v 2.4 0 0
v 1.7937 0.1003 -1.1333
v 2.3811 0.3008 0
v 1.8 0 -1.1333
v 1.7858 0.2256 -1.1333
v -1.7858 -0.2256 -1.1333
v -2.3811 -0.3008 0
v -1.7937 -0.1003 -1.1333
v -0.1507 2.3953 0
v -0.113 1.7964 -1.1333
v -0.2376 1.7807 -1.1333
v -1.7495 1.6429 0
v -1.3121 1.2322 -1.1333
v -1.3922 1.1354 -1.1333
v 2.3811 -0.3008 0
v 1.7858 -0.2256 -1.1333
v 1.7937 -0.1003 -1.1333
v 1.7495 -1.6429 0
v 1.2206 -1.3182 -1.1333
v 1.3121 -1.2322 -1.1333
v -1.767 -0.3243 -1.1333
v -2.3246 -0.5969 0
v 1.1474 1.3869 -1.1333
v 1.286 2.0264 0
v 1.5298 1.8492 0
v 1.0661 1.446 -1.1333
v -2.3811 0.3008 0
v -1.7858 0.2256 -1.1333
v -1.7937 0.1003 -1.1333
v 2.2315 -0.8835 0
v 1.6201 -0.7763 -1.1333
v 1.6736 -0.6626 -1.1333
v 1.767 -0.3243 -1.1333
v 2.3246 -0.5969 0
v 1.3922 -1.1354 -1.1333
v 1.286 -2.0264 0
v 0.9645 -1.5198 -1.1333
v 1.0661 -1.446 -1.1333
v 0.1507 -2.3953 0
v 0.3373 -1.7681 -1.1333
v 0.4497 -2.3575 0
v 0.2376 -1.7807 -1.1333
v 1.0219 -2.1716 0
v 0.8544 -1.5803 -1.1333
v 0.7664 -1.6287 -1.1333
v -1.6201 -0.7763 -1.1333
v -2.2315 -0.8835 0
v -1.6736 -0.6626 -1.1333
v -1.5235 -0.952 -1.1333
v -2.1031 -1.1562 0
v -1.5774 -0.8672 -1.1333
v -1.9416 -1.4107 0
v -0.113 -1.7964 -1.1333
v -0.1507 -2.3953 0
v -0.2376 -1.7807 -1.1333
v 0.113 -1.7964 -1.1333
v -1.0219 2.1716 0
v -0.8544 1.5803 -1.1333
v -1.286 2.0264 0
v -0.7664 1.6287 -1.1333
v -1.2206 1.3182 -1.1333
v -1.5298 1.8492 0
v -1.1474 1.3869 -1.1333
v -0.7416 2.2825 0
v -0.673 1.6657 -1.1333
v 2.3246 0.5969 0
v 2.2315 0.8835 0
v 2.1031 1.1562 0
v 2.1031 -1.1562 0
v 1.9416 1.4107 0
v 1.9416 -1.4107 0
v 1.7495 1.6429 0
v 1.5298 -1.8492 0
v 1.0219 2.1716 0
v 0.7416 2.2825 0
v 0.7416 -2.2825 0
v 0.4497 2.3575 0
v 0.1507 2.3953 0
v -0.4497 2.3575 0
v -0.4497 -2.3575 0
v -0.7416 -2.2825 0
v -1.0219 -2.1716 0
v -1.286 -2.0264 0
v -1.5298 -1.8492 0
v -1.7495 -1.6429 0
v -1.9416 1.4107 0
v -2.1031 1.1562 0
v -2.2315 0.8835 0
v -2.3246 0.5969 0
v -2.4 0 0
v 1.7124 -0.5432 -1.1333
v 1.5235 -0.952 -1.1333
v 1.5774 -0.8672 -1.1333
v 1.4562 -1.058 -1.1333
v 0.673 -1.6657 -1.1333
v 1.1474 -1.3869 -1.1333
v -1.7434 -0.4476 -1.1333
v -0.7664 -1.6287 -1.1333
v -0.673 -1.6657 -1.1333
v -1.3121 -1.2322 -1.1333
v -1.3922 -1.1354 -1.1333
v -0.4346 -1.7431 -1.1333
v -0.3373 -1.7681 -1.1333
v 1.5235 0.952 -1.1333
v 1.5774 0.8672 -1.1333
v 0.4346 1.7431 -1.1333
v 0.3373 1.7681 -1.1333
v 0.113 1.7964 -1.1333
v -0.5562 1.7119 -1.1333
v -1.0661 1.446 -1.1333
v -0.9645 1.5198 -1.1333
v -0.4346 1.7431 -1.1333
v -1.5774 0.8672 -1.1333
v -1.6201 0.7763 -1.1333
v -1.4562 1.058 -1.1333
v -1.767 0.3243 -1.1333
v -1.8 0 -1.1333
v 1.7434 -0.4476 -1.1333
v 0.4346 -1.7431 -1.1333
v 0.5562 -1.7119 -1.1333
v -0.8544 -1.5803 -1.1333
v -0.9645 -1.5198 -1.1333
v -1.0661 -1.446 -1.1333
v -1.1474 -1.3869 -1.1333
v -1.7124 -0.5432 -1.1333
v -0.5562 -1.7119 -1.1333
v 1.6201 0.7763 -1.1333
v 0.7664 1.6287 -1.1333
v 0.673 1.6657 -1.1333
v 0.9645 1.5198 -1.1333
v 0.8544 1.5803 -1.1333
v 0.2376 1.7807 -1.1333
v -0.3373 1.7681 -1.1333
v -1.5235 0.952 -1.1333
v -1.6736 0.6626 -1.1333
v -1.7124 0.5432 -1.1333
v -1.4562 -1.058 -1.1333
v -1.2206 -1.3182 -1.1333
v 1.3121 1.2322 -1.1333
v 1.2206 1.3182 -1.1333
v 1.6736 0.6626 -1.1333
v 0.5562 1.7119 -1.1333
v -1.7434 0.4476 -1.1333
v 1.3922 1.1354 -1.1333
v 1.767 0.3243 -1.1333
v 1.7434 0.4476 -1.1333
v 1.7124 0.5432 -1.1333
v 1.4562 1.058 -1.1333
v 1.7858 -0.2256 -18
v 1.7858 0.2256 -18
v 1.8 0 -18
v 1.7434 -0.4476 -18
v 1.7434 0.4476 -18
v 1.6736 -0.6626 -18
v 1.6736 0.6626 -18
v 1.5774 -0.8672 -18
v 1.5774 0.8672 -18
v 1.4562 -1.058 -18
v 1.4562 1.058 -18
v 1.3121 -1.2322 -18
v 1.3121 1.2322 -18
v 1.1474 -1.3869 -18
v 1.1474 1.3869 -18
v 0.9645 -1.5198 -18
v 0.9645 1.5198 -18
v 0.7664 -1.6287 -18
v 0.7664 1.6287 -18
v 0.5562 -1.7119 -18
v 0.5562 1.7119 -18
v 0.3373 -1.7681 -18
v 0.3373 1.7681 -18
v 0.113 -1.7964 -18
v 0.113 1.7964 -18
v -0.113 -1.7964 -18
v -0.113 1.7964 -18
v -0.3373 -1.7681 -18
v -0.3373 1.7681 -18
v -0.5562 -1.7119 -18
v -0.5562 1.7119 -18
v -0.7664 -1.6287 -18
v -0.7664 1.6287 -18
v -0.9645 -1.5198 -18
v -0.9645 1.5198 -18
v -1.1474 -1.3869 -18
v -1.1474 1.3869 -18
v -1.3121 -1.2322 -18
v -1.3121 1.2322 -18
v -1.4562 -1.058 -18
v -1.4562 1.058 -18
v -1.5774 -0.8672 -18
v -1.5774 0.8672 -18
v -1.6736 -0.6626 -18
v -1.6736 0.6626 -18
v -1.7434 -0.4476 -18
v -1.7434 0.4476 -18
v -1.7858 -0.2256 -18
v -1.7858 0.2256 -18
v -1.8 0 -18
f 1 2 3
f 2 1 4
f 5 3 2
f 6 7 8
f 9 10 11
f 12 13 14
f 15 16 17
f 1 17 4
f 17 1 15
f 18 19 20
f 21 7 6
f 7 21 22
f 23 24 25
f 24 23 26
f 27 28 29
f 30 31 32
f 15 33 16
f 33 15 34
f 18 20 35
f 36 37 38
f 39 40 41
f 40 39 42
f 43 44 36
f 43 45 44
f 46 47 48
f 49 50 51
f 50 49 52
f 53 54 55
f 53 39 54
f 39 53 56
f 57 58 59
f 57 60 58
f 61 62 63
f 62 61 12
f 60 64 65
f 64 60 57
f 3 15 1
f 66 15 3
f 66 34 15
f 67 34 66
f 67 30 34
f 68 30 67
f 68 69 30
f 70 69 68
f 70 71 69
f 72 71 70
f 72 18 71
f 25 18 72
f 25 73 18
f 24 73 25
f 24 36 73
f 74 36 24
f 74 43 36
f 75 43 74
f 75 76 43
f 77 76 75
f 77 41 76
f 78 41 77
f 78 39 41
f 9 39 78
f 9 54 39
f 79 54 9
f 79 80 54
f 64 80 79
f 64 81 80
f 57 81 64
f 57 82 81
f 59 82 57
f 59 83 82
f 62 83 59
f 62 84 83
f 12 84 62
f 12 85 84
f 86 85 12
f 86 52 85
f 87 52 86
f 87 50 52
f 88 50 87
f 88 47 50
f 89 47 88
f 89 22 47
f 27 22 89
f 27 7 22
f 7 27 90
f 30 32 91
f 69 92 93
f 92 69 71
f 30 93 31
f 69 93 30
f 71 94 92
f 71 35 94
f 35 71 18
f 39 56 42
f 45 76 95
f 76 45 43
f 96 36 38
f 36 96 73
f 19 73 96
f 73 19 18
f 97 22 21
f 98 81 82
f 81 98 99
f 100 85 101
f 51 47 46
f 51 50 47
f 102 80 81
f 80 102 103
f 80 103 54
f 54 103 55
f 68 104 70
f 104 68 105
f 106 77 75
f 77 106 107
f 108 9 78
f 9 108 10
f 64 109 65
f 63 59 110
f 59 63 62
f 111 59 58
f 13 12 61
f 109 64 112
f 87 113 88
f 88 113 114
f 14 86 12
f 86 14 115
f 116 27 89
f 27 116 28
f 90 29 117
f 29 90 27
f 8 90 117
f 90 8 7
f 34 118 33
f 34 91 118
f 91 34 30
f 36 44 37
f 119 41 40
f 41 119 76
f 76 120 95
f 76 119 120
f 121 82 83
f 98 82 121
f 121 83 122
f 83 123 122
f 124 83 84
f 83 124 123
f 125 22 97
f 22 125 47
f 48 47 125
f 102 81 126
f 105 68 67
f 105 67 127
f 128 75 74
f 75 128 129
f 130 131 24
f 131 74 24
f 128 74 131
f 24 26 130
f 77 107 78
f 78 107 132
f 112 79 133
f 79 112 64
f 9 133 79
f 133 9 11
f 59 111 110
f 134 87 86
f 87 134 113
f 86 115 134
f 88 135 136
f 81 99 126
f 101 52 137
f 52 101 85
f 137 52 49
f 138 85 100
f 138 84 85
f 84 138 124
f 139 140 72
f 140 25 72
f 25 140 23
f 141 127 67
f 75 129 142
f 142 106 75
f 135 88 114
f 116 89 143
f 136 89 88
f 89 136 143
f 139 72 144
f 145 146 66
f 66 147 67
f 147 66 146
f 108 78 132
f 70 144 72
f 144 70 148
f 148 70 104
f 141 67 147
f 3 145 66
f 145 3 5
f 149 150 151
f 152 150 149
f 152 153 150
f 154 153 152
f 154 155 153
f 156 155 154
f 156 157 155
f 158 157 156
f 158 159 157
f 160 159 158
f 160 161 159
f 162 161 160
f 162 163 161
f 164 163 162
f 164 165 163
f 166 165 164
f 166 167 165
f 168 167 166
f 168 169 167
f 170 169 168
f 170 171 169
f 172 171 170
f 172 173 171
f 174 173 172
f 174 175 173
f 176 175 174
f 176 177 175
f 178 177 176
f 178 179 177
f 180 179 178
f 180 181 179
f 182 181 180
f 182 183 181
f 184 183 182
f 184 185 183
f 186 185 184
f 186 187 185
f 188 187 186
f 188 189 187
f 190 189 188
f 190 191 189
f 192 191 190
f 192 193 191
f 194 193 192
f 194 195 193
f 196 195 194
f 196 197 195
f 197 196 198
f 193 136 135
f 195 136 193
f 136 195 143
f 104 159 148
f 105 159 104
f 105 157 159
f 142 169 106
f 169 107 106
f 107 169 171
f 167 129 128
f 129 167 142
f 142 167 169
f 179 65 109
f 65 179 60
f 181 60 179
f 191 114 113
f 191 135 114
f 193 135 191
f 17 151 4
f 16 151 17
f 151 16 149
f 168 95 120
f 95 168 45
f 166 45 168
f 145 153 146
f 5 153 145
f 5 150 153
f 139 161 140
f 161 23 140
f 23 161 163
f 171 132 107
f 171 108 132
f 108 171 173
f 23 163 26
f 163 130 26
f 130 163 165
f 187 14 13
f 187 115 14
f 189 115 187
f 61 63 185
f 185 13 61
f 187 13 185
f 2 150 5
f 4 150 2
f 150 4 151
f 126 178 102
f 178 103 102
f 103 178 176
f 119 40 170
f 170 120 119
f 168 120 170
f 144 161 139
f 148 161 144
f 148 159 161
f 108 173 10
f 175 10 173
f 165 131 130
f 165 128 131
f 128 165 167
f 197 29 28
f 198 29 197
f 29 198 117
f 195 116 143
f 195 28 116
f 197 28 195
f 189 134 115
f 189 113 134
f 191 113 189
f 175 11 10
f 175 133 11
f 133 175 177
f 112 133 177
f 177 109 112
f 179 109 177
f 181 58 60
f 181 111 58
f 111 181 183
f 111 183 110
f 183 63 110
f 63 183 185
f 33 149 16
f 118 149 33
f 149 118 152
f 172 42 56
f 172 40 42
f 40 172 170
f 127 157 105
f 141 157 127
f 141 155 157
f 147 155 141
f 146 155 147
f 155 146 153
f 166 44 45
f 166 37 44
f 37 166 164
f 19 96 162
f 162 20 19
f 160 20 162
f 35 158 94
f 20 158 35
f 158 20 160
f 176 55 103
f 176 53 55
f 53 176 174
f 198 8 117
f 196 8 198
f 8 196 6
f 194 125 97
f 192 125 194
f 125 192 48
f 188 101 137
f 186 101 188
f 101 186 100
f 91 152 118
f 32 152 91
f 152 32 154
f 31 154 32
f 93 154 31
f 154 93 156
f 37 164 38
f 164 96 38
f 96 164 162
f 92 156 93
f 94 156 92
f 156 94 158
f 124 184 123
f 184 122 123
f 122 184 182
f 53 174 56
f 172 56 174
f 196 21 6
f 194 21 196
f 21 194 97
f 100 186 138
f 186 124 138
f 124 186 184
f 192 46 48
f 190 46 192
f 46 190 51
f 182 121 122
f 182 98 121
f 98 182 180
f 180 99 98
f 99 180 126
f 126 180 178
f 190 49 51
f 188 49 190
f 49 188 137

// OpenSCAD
$fn = 50;


difference() {
	union() {
		translate(v = [0, 0, 0]) {
			rotate(a = [0, 0, 0]) {
				difference() {
					union() {
						translate(v = [0, 0, -1.7000000000]) {
							cylinder(h = 1.7000000000, r1 = 1.5000000000, r2 = 2.4000000000);
						}
						translate(v = [0, 0, -18.0000000000]) {
							cylinder(h = 18, r = 1.5000000000);
						}
						translate(v = [0, 0, -18.0000000000]) {
							cylinder(h = 18, r = 1.8000000000);
						}
						translate(v = [0, 0, -18.0000000000]) {
							cylinder(h = 18, r = 1.5000000000);
						}
					}
					union();
				}
			}
		}
	}
	union();
}
